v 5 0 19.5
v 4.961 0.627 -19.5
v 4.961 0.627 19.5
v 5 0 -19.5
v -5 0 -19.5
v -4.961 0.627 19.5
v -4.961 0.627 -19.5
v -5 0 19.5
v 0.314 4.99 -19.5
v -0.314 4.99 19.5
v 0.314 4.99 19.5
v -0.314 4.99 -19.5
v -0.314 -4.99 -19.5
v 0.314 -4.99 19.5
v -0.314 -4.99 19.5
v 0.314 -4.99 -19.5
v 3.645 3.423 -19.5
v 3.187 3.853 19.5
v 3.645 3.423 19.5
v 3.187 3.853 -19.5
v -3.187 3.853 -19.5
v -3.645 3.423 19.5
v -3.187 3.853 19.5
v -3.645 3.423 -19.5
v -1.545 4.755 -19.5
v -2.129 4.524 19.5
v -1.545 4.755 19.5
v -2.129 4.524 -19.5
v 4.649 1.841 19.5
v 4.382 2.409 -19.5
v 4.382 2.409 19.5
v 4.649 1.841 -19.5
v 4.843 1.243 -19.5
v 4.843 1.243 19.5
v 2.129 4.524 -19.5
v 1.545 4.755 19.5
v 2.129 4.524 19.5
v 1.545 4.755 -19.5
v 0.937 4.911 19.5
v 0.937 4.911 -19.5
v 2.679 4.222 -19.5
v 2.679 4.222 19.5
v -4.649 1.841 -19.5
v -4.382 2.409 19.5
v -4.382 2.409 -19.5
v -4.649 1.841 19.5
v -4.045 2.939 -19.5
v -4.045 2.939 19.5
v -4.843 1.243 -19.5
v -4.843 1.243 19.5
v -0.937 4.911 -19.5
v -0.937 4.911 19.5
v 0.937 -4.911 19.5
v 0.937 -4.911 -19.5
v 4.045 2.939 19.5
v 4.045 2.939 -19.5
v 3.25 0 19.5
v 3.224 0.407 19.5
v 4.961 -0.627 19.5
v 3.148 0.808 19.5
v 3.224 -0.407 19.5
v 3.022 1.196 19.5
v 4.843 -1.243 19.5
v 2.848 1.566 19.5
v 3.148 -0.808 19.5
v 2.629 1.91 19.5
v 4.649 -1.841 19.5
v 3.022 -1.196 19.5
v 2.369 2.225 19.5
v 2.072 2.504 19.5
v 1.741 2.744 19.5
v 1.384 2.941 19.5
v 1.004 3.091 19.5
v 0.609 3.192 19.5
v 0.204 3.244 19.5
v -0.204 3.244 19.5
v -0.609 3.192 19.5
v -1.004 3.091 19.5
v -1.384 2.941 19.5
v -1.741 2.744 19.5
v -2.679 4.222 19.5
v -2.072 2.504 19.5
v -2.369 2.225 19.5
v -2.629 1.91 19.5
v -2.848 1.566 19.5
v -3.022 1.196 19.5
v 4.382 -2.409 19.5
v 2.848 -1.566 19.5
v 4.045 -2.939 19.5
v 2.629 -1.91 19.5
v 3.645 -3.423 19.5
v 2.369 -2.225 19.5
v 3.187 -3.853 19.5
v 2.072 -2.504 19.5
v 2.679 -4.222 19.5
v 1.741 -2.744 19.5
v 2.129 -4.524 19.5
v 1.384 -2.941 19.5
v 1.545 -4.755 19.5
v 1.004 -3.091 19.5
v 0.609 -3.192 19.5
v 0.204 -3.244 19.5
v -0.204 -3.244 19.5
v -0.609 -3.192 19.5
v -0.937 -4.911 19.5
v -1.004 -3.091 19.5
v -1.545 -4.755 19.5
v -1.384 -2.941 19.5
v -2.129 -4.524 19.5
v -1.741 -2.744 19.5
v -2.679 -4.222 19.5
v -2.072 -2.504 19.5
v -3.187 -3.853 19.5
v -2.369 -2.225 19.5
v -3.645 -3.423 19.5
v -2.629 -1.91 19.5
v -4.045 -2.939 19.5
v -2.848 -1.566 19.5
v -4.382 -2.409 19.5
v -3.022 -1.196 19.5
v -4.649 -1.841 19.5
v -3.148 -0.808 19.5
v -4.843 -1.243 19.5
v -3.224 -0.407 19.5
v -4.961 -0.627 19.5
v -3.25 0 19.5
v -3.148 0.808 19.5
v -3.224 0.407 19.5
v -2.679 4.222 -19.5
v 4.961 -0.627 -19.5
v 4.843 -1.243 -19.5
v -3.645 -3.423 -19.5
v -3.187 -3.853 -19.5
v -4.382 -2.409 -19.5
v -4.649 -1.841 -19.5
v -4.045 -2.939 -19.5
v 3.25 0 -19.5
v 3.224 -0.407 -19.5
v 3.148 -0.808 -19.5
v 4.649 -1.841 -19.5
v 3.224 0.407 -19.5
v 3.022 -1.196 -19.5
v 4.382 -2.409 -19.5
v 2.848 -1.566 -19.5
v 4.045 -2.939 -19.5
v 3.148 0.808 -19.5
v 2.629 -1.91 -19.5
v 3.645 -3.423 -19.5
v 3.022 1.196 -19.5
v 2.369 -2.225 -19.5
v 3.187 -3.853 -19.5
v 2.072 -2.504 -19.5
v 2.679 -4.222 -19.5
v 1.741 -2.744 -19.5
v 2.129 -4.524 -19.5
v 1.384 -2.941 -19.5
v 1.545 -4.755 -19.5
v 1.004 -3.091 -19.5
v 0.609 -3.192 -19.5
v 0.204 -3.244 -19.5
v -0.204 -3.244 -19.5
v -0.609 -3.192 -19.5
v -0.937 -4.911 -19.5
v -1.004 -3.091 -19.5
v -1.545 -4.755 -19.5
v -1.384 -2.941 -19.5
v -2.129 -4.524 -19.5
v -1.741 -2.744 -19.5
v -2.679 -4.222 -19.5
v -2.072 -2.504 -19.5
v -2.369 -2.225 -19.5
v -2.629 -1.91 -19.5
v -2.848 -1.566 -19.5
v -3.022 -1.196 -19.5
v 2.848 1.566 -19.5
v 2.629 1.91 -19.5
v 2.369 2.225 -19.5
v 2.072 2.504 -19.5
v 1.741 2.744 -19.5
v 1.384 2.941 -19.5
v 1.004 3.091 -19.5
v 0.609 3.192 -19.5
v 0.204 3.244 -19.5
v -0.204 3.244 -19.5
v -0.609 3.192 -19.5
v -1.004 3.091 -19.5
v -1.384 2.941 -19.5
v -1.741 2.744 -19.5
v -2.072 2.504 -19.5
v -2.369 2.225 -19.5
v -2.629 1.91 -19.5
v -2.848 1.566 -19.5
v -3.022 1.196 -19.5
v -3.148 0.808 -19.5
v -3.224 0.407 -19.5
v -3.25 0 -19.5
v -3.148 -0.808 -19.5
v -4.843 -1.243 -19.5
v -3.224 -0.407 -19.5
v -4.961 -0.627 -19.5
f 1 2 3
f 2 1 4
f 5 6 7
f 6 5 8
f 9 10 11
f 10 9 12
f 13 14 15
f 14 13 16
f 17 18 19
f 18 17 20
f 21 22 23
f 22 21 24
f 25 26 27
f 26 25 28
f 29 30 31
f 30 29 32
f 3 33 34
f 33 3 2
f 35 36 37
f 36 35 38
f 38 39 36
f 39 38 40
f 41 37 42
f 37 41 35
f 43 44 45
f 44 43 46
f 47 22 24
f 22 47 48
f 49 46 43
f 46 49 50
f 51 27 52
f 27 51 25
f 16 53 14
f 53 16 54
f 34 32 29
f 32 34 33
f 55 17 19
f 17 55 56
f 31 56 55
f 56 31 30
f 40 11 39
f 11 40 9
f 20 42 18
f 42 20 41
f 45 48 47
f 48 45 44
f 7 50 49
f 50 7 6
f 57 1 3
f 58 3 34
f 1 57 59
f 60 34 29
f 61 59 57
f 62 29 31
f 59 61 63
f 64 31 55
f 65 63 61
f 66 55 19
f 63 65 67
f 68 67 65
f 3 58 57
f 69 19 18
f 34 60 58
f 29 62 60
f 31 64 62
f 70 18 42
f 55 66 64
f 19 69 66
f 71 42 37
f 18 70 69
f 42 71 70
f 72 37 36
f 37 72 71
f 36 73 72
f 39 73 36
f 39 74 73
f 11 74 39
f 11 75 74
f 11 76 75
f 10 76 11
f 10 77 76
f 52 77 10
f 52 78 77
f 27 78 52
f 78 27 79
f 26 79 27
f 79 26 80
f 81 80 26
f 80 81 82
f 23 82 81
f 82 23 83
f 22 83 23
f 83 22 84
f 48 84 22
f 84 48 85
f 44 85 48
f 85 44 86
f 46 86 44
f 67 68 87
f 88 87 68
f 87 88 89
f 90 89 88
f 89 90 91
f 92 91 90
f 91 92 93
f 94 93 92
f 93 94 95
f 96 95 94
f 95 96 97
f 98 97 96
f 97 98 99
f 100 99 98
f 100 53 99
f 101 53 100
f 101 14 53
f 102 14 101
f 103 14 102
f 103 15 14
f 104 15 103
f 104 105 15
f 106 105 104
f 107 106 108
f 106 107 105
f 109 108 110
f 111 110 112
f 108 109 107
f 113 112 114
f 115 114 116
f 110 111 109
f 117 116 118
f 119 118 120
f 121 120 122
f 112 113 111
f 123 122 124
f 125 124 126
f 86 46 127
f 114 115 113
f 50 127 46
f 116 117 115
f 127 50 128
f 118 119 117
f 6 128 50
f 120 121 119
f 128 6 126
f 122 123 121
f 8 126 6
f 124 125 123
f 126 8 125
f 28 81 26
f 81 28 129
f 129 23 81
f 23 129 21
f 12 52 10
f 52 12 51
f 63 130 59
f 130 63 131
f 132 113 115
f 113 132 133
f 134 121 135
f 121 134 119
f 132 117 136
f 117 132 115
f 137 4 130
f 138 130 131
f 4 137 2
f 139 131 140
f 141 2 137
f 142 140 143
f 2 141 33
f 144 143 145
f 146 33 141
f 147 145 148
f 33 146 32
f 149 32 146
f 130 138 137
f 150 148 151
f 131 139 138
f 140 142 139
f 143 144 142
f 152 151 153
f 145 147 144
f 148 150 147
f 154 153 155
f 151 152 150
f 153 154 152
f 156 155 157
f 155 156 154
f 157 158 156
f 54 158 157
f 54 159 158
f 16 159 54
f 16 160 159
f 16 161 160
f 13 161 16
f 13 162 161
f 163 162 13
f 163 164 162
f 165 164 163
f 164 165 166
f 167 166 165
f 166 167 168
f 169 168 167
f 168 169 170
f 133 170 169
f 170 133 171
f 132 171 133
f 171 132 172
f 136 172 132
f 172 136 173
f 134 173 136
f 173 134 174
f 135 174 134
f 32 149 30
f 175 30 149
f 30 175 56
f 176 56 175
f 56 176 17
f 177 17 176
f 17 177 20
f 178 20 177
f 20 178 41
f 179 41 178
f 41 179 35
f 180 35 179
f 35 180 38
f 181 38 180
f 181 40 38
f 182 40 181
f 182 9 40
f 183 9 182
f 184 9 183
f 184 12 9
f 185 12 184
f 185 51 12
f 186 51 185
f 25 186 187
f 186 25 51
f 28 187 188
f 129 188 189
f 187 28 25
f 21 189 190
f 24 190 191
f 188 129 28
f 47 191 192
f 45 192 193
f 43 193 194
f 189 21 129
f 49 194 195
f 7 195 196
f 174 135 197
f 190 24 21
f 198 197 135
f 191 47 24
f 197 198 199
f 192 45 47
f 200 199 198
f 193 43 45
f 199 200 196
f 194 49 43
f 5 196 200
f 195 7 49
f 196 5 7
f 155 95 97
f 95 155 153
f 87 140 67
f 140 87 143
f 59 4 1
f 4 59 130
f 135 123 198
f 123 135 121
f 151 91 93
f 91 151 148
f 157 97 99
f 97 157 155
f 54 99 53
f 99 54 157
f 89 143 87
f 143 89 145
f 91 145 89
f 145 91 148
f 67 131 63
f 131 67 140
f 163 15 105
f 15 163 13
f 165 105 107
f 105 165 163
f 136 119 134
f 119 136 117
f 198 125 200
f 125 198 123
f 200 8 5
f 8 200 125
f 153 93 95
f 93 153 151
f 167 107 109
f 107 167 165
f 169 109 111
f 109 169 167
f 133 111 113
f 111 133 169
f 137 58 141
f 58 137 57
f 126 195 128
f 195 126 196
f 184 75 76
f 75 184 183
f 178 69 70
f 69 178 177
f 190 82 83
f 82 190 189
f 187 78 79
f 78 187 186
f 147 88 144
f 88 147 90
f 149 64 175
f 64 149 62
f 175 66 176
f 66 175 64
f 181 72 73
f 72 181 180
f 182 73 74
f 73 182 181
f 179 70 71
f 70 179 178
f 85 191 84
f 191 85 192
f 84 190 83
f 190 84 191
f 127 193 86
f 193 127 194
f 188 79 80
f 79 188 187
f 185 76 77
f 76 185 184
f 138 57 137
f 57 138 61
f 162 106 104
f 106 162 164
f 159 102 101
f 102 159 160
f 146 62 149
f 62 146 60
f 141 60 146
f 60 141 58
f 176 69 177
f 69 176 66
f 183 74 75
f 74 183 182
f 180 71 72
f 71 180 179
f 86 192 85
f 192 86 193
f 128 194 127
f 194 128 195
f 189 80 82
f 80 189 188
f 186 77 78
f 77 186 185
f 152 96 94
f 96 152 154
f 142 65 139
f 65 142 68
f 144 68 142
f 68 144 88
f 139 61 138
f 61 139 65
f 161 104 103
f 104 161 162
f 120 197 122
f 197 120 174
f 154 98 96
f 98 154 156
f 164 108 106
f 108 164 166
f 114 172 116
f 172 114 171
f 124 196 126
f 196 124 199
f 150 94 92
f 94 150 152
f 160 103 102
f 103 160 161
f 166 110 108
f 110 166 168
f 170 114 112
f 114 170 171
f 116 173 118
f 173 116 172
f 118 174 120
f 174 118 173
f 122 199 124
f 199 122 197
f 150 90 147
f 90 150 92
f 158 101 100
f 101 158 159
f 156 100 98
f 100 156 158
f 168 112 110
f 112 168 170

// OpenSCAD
$fn = 50;


difference() {
	union() {
		translate(v = [0, 0, -19.5000000000]) {
			cylinder(h = 39, r = 5.0000000000);
		}
	}
	union() {
		translate(v = [0, 0, -100.0000000000]) {
			cylinder(h = 200, r = 3.2500000000);
		}
	}
}
